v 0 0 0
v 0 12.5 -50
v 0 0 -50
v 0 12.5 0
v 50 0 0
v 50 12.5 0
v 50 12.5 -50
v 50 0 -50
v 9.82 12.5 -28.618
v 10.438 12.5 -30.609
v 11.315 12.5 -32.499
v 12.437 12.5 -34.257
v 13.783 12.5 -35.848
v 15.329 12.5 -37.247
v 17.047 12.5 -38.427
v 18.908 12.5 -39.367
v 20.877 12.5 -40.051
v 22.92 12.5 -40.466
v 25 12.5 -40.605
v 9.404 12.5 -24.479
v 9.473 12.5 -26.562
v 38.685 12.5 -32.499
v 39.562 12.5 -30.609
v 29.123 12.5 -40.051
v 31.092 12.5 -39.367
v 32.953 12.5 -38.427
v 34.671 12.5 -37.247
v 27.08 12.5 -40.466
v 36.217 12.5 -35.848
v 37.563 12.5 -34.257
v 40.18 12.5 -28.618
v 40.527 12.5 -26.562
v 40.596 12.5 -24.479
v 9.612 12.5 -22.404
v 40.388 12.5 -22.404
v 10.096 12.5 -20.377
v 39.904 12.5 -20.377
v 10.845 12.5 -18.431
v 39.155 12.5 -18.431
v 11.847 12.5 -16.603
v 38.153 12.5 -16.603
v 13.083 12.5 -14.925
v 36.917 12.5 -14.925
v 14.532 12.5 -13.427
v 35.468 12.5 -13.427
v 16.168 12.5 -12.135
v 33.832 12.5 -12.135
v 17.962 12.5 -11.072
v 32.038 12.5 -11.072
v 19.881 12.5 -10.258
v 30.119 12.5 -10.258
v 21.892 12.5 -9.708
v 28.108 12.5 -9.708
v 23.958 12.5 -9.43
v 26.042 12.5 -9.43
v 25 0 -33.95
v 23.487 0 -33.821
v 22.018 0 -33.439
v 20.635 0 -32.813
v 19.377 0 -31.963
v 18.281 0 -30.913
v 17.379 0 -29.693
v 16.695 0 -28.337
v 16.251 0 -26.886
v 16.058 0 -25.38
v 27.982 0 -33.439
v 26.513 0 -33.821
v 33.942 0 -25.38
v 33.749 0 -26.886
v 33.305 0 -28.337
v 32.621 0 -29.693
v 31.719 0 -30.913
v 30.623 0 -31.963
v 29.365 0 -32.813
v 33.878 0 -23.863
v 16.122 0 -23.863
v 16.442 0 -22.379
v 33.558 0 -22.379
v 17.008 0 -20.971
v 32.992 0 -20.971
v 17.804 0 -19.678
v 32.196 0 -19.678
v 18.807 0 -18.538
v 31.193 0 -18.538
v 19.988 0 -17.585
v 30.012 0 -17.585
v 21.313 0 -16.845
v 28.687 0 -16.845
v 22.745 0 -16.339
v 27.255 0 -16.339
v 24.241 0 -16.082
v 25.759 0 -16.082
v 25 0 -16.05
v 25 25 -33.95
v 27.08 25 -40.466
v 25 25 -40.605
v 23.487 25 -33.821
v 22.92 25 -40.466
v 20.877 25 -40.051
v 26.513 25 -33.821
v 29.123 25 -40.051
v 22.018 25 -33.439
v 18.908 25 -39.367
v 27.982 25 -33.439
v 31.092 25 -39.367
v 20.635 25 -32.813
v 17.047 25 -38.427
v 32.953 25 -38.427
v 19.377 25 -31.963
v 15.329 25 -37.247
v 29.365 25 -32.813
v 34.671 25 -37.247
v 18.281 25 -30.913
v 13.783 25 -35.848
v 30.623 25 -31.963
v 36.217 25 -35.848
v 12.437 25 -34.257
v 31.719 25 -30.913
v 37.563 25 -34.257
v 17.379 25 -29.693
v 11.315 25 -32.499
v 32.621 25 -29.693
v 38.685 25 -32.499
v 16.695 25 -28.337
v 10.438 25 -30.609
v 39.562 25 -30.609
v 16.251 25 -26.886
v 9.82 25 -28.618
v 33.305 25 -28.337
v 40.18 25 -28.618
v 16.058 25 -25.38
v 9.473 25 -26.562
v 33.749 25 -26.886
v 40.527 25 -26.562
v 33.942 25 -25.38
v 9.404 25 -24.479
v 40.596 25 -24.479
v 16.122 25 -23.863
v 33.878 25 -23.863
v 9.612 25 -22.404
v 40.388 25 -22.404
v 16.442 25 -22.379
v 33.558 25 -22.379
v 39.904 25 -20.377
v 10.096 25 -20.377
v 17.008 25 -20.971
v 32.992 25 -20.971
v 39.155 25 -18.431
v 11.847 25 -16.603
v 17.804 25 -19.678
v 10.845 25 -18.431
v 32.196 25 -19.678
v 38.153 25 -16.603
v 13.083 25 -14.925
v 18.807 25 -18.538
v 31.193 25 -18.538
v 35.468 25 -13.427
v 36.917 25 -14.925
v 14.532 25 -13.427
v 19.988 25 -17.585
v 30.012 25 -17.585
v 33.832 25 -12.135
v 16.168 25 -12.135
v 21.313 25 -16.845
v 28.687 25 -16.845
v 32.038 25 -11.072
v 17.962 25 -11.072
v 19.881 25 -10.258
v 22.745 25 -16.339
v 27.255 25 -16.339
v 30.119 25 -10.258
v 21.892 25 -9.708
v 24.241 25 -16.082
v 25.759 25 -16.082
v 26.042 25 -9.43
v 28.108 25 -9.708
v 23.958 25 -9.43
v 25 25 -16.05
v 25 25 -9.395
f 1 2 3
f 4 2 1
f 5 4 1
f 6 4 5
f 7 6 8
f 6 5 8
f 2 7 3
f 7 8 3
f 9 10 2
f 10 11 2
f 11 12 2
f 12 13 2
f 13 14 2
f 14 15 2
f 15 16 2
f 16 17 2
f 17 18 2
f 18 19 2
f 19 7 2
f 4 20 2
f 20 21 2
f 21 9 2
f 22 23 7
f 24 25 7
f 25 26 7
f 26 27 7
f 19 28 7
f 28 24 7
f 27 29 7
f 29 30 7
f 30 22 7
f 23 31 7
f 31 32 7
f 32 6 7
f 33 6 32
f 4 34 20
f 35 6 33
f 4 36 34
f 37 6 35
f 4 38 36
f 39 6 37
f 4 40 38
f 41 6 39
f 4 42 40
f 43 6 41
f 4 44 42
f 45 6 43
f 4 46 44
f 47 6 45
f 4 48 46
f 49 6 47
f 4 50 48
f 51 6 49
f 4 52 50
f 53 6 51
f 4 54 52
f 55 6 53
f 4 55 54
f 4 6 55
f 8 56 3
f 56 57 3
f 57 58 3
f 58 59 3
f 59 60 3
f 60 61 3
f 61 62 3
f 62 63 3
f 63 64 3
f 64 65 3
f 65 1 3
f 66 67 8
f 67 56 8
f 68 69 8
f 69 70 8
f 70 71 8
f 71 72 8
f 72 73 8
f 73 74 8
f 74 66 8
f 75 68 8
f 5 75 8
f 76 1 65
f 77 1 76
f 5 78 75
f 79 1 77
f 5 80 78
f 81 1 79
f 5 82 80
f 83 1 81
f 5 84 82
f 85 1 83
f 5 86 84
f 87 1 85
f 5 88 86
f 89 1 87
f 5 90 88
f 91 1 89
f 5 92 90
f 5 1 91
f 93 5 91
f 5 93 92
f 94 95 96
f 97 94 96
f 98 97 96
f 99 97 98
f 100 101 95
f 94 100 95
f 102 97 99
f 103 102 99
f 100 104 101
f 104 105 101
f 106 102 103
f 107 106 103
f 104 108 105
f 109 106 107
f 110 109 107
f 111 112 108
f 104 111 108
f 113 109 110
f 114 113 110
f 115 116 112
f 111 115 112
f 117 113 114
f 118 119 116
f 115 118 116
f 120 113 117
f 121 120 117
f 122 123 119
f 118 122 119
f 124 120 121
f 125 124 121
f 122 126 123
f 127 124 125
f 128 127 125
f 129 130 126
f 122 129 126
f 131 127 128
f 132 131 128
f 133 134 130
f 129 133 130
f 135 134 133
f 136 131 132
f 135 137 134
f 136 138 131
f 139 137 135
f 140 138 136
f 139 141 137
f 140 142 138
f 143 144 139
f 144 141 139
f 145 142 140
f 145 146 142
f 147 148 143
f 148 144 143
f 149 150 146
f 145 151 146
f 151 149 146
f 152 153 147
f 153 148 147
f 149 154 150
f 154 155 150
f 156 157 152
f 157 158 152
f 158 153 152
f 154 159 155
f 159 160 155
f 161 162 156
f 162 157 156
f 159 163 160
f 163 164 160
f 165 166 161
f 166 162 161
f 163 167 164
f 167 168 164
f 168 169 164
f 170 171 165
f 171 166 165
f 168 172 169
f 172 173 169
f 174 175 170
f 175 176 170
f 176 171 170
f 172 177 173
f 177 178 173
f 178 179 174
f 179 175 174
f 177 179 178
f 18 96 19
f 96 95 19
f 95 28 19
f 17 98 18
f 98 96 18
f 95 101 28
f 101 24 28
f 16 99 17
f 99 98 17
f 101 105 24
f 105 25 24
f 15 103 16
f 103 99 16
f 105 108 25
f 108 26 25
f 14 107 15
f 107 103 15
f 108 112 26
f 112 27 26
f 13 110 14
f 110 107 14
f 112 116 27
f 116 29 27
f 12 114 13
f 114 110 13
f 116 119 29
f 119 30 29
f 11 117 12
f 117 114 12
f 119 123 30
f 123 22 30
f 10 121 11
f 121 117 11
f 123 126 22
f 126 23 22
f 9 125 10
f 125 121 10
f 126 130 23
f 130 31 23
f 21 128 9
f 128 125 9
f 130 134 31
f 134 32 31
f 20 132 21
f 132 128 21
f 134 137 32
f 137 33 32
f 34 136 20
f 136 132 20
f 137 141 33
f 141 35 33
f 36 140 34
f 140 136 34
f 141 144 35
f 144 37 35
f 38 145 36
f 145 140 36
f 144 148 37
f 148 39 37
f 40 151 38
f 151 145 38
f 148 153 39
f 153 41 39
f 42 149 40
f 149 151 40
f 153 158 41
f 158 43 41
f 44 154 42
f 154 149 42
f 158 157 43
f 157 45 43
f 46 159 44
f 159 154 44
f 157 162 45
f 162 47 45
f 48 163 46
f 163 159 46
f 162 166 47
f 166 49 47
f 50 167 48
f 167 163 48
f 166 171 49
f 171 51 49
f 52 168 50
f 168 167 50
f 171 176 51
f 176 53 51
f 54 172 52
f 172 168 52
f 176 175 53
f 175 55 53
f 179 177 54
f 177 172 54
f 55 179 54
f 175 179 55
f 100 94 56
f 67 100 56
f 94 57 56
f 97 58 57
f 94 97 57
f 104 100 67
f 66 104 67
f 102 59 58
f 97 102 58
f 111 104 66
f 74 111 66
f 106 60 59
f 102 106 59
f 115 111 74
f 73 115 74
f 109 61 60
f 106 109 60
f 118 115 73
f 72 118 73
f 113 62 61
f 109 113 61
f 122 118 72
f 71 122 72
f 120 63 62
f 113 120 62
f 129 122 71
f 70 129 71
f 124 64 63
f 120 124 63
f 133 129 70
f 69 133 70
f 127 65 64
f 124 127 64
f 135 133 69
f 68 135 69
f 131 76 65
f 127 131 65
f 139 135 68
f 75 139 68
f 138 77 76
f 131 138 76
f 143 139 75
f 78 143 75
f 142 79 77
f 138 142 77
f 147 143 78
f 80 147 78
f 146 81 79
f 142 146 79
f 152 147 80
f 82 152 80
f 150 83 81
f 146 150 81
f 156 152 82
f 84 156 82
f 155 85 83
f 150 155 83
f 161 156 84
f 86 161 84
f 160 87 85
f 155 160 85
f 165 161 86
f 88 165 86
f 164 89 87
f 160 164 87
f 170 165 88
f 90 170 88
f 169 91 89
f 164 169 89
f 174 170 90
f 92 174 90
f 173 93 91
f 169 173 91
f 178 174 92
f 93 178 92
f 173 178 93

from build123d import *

# Parameters (mm, degrees)
SKETCH1_W           = 50
SKETCH1_H           = 50
BOSS_EXTRUDE1_DEPTH = 12.5
SKETCH2_R           = 15.605
SKETCH2_R_2         = 8.95
BOSS_EXTRUDE2_DEPTH = 12.5
SKETCH3_R           = 8.95
CUT_EXTRUDE1_DEPTH  = 76


with BuildPart() as part:
    # Sketch1 → Boss-Extrude1 (new body)
    with BuildSketch(Plane(origin=(0, 0, 0), x_dir=(1, 0, 0), z_dir=(0, 1, 0))):
        with Locations((25, 25)):
            Rectangle(SKETCH1_W, SKETCH1_H)
    extrude(amount=BOSS_EXTRUDE1_DEPTH)

    # Sketch2 → Boss-Extrude2 (add)
    with BuildSketch(Plane(origin=(0, 12.5, 0), x_dir=(1, 0, 0), z_dir=(0, 1, 0))):
        with Locations(Location((25, 25, 0), (0, 0, 90))):
            Circle(SKETCH2_R)
        with Locations(Location((25, 25, 0), (0, 0, 270))):
            Circle(SKETCH2_R_2, mode=Mode.SUBTRACT)
    extrude(amount=BOSS_EXTRUDE2_DEPTH)

    # Sketch3 → Cut-Extrude1 (cut, through all)
    with BuildSketch(Plane(origin=(0, 25, 0), x_dir=(1, 0, 0), z_dir=(0, 1, 0))):
        with Locations(Location((25, 25, 0), (0, 0, 270))):
            Circle(SKETCH3_R)
    extrude(amount=-CUT_EXTRUDE1_DEPTH, mode=Mode.SUBTRACT)


solid = part.part
